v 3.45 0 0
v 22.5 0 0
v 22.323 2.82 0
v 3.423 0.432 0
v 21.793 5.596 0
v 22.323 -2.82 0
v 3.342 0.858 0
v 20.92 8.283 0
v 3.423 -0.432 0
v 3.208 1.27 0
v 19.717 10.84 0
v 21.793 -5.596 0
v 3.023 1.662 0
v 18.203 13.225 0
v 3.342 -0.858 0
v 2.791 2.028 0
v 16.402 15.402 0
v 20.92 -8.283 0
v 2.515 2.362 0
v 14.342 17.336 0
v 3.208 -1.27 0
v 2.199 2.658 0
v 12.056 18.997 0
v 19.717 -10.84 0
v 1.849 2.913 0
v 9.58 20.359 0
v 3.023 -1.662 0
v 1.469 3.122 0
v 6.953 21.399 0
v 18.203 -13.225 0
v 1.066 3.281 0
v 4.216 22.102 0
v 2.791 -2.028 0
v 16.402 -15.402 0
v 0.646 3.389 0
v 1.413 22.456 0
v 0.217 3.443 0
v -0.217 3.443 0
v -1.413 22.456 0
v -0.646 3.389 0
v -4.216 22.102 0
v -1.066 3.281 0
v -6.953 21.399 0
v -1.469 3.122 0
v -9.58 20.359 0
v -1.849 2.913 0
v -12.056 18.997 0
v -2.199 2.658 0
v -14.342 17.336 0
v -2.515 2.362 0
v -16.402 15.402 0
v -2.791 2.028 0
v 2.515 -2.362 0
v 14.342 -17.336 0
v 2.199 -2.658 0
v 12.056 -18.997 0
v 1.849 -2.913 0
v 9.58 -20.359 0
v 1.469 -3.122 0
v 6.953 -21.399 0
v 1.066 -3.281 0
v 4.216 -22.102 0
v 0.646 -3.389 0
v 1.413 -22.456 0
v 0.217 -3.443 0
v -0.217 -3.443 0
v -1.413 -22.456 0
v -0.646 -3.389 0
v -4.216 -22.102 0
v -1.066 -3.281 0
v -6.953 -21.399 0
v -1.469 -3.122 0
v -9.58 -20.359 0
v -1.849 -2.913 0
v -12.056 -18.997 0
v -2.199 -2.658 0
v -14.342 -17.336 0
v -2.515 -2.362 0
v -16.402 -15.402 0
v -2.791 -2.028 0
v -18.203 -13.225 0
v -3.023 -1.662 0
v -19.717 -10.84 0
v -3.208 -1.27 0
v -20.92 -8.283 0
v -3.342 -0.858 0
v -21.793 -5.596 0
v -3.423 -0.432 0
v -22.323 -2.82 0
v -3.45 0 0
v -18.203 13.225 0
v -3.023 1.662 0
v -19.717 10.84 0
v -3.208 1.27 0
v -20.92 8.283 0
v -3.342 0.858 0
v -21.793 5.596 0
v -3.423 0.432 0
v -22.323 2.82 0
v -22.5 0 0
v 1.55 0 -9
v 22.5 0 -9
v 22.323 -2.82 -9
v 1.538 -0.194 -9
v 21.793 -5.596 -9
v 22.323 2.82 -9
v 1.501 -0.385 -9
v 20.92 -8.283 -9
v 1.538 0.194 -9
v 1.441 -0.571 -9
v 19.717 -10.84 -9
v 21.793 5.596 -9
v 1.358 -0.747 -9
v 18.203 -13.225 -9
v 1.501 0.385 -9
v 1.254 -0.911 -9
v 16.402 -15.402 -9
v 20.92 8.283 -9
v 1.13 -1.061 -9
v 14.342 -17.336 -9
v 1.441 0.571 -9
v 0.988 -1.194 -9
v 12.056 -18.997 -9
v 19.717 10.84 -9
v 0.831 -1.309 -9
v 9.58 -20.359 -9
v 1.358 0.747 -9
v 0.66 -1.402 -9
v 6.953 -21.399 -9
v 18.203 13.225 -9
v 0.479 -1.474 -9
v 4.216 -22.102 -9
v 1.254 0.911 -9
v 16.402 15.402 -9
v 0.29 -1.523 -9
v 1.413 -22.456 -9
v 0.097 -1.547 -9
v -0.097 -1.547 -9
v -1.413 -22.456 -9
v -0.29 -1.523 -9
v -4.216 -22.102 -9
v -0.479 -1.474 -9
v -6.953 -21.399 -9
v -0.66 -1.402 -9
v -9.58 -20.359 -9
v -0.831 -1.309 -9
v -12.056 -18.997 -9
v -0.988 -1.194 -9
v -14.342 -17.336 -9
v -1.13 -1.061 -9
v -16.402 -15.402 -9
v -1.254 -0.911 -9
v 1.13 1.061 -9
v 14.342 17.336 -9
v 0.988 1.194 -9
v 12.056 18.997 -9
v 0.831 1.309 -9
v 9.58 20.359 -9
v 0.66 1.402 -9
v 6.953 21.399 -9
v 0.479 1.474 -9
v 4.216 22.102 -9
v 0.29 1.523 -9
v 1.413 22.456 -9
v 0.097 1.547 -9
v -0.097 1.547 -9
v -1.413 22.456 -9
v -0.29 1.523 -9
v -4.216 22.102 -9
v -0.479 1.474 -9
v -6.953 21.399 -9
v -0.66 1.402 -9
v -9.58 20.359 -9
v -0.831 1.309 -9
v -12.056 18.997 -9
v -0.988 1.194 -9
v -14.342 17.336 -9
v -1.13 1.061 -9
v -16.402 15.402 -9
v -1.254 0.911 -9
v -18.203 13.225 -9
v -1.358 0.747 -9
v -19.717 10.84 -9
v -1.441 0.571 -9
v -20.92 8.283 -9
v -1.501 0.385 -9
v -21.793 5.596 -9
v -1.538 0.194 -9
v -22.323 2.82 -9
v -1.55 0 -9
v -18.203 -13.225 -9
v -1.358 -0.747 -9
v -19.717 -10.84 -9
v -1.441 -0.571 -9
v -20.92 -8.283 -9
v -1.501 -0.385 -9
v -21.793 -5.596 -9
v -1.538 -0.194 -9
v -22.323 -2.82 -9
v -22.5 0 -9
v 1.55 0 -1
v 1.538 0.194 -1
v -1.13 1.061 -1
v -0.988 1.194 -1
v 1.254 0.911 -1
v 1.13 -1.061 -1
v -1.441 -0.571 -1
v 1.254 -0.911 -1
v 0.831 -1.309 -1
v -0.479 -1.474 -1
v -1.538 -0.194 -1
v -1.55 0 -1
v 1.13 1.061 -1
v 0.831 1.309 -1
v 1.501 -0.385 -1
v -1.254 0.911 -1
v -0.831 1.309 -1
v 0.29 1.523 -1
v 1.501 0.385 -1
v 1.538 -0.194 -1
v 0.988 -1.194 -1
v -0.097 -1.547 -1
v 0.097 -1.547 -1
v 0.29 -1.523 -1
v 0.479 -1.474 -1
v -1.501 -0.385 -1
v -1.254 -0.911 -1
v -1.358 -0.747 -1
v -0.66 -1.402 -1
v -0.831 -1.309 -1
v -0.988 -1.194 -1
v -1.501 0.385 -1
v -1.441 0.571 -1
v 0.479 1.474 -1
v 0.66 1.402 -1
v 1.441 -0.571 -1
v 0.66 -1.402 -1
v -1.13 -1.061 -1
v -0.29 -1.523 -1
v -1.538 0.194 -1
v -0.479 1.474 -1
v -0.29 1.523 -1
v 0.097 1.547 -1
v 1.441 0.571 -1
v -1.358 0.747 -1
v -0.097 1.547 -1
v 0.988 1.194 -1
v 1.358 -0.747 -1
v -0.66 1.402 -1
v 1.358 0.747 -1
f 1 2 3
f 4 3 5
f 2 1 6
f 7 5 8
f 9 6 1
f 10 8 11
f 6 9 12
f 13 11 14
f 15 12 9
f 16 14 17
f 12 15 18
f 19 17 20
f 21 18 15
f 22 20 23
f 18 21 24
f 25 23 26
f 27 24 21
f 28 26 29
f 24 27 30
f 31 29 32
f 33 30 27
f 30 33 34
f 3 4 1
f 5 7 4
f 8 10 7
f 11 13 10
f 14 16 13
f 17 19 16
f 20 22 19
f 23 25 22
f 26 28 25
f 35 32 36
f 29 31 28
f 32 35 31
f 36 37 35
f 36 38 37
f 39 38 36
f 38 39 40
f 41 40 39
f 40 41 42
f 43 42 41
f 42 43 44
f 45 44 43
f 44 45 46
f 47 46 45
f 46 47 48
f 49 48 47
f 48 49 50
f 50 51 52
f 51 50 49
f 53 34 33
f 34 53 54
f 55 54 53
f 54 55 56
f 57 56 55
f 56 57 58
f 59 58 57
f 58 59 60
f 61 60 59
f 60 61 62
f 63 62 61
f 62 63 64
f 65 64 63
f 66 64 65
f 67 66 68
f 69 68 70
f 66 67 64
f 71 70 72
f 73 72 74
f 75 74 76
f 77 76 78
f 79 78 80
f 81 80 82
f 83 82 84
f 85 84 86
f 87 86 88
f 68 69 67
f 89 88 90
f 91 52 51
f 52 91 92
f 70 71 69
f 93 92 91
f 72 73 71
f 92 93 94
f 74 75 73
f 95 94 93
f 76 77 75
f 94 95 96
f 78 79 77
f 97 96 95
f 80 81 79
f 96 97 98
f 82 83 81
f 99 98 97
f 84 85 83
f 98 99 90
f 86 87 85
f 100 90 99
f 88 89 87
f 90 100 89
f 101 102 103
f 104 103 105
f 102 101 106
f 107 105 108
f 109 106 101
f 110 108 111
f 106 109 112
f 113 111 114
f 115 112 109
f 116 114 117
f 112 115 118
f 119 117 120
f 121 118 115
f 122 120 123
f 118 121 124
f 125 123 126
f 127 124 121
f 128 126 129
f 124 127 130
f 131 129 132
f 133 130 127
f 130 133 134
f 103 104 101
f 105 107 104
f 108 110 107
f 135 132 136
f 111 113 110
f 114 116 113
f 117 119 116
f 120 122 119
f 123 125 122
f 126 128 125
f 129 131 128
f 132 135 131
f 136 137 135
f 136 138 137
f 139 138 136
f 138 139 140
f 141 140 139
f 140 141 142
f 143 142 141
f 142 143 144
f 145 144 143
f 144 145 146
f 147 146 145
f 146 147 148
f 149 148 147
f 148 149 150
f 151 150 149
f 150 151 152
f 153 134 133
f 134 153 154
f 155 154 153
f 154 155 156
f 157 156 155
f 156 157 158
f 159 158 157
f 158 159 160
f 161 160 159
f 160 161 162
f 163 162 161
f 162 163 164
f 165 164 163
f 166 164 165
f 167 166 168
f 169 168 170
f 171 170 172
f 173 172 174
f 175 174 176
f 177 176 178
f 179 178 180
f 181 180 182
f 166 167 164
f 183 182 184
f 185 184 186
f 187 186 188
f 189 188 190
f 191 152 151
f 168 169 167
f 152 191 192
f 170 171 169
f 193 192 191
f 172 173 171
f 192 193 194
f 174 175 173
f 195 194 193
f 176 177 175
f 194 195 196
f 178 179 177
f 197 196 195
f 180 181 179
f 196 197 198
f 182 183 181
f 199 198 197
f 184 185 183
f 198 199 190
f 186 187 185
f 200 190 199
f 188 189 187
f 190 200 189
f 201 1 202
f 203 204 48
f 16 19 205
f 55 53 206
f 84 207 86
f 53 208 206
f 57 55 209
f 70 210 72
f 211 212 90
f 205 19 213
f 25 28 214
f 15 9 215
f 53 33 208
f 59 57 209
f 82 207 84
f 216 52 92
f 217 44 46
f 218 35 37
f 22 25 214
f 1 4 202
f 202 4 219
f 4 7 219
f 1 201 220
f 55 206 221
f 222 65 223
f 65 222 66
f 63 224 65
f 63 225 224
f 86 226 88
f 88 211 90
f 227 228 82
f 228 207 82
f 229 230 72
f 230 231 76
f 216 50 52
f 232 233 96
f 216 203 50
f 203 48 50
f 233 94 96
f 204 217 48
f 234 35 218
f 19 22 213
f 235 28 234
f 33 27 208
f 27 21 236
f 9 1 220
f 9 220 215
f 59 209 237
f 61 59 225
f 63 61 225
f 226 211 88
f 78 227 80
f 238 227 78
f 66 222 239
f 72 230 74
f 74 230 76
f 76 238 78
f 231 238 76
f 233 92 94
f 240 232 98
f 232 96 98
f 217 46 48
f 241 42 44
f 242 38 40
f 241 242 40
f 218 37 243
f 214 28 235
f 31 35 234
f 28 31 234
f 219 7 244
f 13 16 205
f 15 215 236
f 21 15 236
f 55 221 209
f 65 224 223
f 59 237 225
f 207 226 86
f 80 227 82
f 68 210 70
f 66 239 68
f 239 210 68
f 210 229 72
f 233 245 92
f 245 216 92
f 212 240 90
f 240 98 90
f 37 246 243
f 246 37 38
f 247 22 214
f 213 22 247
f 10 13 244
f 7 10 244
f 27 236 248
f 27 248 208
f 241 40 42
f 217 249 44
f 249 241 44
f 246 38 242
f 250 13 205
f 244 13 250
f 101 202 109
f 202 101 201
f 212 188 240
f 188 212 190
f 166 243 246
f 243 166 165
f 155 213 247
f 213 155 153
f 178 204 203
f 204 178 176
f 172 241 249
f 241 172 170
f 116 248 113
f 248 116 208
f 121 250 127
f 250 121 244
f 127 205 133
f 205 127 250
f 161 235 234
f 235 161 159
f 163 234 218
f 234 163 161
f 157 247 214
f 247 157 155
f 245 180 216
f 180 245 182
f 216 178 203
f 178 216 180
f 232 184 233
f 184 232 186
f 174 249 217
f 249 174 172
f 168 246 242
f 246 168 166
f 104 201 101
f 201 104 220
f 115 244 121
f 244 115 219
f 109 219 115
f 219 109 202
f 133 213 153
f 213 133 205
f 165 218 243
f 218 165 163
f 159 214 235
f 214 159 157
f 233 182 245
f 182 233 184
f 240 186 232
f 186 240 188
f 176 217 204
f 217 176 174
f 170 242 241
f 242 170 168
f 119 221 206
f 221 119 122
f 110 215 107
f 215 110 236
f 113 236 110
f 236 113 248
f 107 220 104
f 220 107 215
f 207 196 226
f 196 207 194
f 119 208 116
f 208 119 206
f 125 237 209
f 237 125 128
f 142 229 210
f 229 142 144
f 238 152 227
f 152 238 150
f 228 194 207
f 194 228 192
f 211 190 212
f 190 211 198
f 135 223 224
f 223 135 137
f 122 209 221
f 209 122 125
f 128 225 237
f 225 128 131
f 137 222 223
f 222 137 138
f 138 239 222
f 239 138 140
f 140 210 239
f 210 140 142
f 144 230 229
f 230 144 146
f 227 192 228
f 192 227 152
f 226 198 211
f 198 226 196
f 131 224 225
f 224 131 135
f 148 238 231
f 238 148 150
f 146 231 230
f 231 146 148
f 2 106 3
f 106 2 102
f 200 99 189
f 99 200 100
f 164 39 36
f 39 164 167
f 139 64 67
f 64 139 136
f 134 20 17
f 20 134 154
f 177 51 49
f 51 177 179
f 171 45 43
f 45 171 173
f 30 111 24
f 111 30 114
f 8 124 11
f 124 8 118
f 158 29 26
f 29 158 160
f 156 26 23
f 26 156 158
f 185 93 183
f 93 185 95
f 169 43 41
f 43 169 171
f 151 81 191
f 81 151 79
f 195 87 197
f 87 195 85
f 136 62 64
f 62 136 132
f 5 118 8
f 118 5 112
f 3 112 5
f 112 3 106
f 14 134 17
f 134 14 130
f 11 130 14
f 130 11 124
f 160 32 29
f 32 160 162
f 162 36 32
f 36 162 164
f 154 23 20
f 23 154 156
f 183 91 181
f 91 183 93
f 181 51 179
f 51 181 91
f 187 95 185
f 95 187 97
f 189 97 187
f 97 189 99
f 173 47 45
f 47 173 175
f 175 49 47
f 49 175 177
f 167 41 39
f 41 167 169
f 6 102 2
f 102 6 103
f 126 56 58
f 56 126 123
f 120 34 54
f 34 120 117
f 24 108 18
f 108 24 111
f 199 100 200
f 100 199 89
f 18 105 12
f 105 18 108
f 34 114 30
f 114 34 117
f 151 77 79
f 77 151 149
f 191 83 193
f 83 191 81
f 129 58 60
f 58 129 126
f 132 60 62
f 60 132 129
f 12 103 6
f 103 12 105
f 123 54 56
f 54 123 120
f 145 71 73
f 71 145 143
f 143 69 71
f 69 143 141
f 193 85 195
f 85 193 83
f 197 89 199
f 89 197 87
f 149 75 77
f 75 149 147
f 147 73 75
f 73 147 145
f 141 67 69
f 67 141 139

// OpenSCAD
$fn = 50;


difference() {
	union() {
		translate(v = [0, 0, -9.0000000000]) {
			cylinder(h = 9, r = 22.5000000000);
		}
	}
	union() {
		translate(v = [0, 0, 0]) {
			rotate(a = [0, 0, 0]) {
				difference() {
					union() {
						translate(v = [0, 0, -9.0000000000]) {
							cylinder(h = 9, r = 1.2500000000);
						}
						translate(v = [0, 0, -1.0000000000]) {
							cylinder(h = 1.0000000000, r1 = 1.5500000000, r2 = 3.4500000000);
						}
						translate(v = [0, 0, -9.0000000000]) {
							cylinder(h = 9, r = 1.5500000000);
						}
						translate(v = [0, 0, -9.0000000000]) {
							cylinder(h = 9, r = 1.2500000000);
						}
					}
					union();
				}
			}
		}
	}
}
